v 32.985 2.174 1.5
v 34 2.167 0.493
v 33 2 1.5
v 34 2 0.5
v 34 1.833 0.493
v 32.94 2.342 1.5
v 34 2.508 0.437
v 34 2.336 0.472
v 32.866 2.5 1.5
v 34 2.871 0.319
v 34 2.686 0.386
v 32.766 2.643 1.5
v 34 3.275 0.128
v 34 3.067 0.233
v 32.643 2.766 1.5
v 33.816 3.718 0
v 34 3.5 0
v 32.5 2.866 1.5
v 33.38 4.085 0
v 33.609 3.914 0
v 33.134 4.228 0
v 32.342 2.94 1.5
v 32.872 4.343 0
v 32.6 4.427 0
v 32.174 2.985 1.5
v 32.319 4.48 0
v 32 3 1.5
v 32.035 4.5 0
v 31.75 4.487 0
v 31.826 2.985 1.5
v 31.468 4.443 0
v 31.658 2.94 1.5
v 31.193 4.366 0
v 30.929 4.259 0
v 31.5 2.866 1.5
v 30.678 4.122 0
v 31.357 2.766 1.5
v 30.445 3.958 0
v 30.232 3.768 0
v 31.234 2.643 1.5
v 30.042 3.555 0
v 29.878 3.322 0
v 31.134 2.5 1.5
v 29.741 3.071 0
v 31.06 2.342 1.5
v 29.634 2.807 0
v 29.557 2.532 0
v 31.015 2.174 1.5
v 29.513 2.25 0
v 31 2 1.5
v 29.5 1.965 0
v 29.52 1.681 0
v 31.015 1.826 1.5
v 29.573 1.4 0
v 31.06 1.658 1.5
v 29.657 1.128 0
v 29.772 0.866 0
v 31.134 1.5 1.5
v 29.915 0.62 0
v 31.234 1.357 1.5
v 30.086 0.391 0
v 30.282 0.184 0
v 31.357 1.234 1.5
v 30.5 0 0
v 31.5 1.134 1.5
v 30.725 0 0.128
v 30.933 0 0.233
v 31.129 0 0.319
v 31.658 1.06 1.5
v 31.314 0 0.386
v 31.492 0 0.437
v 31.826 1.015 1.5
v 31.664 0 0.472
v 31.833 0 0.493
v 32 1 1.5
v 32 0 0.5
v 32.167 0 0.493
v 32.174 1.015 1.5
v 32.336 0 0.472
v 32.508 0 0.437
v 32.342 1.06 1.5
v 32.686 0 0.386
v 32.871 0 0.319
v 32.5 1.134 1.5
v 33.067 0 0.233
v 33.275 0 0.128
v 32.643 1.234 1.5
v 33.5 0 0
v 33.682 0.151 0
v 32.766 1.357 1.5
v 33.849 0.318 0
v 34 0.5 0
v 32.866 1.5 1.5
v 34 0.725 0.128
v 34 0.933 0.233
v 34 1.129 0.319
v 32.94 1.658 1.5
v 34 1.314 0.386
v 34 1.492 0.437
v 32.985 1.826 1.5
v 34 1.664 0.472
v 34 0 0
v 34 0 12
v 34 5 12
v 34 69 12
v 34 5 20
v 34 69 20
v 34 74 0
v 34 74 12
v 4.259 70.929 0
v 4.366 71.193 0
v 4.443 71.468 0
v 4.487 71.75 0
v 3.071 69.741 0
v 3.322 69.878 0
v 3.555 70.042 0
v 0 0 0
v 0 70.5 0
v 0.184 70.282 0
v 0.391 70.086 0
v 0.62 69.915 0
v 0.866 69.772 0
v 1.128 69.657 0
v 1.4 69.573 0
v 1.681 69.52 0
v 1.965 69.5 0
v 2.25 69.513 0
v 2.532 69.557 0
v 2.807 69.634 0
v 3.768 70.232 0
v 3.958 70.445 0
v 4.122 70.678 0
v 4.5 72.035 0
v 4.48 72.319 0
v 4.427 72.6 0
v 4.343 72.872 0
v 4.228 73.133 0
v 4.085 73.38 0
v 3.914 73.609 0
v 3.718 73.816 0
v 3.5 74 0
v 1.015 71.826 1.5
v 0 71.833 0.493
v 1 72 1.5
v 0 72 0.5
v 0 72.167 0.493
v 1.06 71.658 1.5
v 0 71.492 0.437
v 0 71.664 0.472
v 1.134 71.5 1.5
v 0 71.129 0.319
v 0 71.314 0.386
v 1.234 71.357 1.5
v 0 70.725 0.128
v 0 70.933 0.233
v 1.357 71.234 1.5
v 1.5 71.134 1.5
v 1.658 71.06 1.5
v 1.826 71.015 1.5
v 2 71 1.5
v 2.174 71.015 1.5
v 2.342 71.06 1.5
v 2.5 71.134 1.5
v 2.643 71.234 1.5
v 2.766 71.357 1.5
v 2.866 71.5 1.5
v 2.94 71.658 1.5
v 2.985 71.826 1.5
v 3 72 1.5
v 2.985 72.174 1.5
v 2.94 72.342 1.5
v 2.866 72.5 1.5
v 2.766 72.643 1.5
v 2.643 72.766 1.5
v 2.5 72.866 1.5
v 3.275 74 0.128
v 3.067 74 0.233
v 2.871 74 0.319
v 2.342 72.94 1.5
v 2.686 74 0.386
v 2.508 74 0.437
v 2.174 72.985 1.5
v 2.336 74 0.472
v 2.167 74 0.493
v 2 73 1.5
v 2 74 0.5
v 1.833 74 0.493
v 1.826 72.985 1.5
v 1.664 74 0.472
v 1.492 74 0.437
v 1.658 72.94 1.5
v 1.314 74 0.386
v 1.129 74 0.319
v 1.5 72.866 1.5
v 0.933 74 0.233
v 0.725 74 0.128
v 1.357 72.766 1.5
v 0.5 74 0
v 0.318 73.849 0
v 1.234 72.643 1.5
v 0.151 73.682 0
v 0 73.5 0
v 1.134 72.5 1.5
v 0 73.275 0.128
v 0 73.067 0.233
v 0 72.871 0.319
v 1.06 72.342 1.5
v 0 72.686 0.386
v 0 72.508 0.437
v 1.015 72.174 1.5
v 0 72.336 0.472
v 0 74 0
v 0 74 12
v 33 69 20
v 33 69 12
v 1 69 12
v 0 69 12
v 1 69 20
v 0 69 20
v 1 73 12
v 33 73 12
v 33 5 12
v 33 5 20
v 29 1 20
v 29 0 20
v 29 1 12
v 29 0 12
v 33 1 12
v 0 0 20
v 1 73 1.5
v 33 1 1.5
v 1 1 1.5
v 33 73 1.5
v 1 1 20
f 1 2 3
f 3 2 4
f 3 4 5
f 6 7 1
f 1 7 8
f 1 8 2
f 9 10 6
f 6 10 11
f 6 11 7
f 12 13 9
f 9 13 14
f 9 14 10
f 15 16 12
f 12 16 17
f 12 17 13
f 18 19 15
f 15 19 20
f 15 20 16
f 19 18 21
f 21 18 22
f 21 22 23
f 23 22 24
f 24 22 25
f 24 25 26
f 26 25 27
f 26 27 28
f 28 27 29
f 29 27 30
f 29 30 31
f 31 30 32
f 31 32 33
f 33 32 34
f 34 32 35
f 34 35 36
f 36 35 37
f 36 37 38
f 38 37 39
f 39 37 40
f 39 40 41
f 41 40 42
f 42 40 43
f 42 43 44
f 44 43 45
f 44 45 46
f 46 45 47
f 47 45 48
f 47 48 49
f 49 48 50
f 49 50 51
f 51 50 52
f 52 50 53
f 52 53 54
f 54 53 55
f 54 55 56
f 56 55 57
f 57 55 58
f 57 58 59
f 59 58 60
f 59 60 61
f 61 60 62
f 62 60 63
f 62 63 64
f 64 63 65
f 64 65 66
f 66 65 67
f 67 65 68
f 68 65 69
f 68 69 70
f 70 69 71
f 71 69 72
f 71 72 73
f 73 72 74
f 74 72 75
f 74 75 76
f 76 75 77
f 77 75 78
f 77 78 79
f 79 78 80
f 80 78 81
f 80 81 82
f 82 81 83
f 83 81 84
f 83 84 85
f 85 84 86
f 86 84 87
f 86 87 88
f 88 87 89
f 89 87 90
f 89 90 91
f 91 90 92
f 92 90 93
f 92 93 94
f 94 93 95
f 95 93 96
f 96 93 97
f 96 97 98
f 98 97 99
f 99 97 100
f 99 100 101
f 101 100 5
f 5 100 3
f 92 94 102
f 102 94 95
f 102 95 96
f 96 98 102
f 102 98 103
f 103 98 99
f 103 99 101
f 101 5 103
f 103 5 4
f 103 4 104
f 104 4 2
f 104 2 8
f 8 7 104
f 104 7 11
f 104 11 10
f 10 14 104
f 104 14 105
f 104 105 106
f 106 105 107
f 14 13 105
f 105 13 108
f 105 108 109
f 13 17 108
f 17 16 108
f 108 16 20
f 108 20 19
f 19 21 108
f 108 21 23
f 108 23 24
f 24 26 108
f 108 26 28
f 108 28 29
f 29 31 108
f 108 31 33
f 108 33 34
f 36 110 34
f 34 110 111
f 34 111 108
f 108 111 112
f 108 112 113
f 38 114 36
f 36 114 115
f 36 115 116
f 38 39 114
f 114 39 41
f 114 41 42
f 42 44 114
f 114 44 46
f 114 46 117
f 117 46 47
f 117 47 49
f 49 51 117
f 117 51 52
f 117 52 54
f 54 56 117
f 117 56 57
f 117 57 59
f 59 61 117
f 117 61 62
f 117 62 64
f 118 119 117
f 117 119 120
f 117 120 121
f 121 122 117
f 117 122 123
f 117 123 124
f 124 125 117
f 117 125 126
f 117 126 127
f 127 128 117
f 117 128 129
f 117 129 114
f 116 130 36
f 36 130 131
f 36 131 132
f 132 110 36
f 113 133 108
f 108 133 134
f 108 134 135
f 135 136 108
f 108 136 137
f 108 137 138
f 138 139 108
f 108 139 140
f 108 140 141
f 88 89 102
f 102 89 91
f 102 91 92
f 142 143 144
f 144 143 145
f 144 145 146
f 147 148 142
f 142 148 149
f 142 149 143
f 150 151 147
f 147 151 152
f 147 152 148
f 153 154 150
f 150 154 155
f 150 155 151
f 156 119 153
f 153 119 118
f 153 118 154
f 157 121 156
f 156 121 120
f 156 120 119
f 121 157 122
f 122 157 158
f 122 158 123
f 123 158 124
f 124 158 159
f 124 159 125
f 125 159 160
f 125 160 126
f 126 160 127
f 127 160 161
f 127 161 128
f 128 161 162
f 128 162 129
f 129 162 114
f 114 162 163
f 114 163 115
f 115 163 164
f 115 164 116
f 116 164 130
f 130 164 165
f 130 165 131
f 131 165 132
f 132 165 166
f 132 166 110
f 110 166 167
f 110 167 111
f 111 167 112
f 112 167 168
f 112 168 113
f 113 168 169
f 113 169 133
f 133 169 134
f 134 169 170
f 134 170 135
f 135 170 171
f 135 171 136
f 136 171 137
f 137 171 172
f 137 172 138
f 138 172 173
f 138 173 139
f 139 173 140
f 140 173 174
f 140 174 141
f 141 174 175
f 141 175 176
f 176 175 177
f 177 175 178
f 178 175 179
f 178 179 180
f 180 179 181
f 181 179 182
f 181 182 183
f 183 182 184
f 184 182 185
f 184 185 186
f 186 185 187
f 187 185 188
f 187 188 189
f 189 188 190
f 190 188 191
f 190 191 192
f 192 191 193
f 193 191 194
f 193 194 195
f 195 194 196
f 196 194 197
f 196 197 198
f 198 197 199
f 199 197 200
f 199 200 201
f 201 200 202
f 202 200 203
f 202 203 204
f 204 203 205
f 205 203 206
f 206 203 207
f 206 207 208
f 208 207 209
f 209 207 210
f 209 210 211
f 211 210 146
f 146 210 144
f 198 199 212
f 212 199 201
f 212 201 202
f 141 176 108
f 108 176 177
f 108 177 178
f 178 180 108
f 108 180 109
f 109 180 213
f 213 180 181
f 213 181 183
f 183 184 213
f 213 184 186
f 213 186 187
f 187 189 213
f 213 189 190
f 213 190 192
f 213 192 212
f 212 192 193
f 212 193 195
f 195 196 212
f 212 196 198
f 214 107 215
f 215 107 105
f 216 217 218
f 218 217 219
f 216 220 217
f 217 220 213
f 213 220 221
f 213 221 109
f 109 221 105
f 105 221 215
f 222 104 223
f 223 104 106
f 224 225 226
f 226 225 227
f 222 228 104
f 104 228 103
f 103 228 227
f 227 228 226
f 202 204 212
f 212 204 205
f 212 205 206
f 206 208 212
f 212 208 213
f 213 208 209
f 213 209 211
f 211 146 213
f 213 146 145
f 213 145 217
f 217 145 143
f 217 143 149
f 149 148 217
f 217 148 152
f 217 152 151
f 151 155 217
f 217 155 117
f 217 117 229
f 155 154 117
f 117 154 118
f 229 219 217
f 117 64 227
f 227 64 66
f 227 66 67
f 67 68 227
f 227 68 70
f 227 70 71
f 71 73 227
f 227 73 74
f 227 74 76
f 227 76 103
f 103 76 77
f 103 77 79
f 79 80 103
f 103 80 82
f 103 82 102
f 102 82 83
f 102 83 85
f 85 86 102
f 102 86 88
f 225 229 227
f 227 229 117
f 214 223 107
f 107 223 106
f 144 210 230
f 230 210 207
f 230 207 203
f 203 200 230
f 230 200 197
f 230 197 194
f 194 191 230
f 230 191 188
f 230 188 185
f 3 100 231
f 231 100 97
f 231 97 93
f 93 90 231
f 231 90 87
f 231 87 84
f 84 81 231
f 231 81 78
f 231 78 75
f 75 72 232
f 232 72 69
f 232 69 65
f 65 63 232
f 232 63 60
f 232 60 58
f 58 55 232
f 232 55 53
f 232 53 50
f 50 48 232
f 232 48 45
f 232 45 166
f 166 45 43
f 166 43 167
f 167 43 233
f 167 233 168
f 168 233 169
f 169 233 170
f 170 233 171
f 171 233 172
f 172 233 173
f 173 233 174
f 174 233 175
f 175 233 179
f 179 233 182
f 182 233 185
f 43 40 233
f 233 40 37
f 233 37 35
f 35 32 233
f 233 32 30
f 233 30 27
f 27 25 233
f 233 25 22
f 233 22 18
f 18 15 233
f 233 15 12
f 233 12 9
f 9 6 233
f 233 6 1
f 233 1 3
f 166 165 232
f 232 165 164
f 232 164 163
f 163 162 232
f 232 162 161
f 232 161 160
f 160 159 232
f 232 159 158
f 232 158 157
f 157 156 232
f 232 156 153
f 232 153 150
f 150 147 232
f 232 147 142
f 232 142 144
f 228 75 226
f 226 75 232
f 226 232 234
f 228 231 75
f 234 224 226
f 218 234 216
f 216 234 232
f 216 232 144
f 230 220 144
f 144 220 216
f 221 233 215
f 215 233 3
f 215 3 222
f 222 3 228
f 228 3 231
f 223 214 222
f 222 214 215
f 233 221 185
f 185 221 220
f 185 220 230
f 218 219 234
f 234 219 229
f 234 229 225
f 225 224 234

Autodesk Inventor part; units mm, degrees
ref_plane "YZ Plane" through (0, 0, 0) normal (1, 0, 0) x (0, 1, 0)
ref_plane "XZ Plane" through (0, 0, 0) normal (0, 1, 0) x (-1, 0, 0)
ref_plane "XY Plane" through (0, 0, 0) normal (0, 0, 1) x (1, 0, 0)
sketch "Sketch1" plane through (0, 0, 0) normal (0, 0, 1) x (1, 0, 0)
  line L0 (0, 0) -> (34, 0)
  line L1 (34, 0) -> (34, 74)
  line L2 (34, 74) -> (0, 74)
  line L3 (0, 74) -> (0, 0)
  line L4 (33, 73) -> (1, 73)
  line L5 (1, 73) -> (1, 1)
  line L6 (1, 1) -> (33, 1)
  line L7 (33, 1) -> (33, 73)
  dimension "d0" = 34
  dimension "d1" = 74
  dimension "d2" = 1
  dimension "d3" = 1
  dimension "d4" = 1
  dimension "d5" = 1
extrude "Extrusion1" add sketch "Sketch1" along normal blind 1.5 contours L3 L2 L1 L0 | L7 L6 L5 L4
extrude "Extrusion2" add sketch "Sketch1" along normal blind 20
sketch "Sketch2" plane through (0, 0, 0) normal (0, 0, -1) x (-1, 0, 0)
  circle A0 centre (-32, 2) radius 1
  circle A1 centre (-2, 72) radius 1
  line L0 (0, 74) -> (0, 0) projected
  line L1 (-34, 74) -> (0, 74) projected
  line L2 (0, 0) -> (-34, 0) projected
  line L3 (-34, 0) -> (-34, 74) projected
  dimension "d10" = 2
  dimension "d11" = 2
  dimension "d12" = 2
  dimension "d13" = 2
  dimension "d14" = 2
  dimension "d15" = 2
extrude "Extrusion3" cut sketch "Sketch2" against normal through all contours A0 | A1
sketch "Sketch3" plane through (0, 0, 20) normal (0, 0, 1) x (1, 0, 0)
  line L0 (34, 74) -> (0, 74) projected
  line L1 (34, 0) -> (34, 74) projected
  line L2 (0, 74) -> (34, 74)
  line L3 (34, 74) -> (34, 69)
  line L4 (34, 69) -> (0, 69)
  line L5 (0, 69) -> (0, 74)
  line L6 (34, 0) -> (29, 0)
  line L7 (29, 0) -> (29, 5)
  line L8 (29, 5) -> (34, 5)
  line L9 (34, 5) -> (34, 0)
  point P0 (0, 0)
  dimension "d20" = 5
  dimension "d21" = 5
  dimension "d22" = 5
extrude "Extrusion4" cut sketch "Sketch3" against normal blind 8
chamfer "Chamfer1" distance 1.5 angle 45 2 edges at (3, 72, 0) (33, 2, 0)
properties part number "brainholder"
